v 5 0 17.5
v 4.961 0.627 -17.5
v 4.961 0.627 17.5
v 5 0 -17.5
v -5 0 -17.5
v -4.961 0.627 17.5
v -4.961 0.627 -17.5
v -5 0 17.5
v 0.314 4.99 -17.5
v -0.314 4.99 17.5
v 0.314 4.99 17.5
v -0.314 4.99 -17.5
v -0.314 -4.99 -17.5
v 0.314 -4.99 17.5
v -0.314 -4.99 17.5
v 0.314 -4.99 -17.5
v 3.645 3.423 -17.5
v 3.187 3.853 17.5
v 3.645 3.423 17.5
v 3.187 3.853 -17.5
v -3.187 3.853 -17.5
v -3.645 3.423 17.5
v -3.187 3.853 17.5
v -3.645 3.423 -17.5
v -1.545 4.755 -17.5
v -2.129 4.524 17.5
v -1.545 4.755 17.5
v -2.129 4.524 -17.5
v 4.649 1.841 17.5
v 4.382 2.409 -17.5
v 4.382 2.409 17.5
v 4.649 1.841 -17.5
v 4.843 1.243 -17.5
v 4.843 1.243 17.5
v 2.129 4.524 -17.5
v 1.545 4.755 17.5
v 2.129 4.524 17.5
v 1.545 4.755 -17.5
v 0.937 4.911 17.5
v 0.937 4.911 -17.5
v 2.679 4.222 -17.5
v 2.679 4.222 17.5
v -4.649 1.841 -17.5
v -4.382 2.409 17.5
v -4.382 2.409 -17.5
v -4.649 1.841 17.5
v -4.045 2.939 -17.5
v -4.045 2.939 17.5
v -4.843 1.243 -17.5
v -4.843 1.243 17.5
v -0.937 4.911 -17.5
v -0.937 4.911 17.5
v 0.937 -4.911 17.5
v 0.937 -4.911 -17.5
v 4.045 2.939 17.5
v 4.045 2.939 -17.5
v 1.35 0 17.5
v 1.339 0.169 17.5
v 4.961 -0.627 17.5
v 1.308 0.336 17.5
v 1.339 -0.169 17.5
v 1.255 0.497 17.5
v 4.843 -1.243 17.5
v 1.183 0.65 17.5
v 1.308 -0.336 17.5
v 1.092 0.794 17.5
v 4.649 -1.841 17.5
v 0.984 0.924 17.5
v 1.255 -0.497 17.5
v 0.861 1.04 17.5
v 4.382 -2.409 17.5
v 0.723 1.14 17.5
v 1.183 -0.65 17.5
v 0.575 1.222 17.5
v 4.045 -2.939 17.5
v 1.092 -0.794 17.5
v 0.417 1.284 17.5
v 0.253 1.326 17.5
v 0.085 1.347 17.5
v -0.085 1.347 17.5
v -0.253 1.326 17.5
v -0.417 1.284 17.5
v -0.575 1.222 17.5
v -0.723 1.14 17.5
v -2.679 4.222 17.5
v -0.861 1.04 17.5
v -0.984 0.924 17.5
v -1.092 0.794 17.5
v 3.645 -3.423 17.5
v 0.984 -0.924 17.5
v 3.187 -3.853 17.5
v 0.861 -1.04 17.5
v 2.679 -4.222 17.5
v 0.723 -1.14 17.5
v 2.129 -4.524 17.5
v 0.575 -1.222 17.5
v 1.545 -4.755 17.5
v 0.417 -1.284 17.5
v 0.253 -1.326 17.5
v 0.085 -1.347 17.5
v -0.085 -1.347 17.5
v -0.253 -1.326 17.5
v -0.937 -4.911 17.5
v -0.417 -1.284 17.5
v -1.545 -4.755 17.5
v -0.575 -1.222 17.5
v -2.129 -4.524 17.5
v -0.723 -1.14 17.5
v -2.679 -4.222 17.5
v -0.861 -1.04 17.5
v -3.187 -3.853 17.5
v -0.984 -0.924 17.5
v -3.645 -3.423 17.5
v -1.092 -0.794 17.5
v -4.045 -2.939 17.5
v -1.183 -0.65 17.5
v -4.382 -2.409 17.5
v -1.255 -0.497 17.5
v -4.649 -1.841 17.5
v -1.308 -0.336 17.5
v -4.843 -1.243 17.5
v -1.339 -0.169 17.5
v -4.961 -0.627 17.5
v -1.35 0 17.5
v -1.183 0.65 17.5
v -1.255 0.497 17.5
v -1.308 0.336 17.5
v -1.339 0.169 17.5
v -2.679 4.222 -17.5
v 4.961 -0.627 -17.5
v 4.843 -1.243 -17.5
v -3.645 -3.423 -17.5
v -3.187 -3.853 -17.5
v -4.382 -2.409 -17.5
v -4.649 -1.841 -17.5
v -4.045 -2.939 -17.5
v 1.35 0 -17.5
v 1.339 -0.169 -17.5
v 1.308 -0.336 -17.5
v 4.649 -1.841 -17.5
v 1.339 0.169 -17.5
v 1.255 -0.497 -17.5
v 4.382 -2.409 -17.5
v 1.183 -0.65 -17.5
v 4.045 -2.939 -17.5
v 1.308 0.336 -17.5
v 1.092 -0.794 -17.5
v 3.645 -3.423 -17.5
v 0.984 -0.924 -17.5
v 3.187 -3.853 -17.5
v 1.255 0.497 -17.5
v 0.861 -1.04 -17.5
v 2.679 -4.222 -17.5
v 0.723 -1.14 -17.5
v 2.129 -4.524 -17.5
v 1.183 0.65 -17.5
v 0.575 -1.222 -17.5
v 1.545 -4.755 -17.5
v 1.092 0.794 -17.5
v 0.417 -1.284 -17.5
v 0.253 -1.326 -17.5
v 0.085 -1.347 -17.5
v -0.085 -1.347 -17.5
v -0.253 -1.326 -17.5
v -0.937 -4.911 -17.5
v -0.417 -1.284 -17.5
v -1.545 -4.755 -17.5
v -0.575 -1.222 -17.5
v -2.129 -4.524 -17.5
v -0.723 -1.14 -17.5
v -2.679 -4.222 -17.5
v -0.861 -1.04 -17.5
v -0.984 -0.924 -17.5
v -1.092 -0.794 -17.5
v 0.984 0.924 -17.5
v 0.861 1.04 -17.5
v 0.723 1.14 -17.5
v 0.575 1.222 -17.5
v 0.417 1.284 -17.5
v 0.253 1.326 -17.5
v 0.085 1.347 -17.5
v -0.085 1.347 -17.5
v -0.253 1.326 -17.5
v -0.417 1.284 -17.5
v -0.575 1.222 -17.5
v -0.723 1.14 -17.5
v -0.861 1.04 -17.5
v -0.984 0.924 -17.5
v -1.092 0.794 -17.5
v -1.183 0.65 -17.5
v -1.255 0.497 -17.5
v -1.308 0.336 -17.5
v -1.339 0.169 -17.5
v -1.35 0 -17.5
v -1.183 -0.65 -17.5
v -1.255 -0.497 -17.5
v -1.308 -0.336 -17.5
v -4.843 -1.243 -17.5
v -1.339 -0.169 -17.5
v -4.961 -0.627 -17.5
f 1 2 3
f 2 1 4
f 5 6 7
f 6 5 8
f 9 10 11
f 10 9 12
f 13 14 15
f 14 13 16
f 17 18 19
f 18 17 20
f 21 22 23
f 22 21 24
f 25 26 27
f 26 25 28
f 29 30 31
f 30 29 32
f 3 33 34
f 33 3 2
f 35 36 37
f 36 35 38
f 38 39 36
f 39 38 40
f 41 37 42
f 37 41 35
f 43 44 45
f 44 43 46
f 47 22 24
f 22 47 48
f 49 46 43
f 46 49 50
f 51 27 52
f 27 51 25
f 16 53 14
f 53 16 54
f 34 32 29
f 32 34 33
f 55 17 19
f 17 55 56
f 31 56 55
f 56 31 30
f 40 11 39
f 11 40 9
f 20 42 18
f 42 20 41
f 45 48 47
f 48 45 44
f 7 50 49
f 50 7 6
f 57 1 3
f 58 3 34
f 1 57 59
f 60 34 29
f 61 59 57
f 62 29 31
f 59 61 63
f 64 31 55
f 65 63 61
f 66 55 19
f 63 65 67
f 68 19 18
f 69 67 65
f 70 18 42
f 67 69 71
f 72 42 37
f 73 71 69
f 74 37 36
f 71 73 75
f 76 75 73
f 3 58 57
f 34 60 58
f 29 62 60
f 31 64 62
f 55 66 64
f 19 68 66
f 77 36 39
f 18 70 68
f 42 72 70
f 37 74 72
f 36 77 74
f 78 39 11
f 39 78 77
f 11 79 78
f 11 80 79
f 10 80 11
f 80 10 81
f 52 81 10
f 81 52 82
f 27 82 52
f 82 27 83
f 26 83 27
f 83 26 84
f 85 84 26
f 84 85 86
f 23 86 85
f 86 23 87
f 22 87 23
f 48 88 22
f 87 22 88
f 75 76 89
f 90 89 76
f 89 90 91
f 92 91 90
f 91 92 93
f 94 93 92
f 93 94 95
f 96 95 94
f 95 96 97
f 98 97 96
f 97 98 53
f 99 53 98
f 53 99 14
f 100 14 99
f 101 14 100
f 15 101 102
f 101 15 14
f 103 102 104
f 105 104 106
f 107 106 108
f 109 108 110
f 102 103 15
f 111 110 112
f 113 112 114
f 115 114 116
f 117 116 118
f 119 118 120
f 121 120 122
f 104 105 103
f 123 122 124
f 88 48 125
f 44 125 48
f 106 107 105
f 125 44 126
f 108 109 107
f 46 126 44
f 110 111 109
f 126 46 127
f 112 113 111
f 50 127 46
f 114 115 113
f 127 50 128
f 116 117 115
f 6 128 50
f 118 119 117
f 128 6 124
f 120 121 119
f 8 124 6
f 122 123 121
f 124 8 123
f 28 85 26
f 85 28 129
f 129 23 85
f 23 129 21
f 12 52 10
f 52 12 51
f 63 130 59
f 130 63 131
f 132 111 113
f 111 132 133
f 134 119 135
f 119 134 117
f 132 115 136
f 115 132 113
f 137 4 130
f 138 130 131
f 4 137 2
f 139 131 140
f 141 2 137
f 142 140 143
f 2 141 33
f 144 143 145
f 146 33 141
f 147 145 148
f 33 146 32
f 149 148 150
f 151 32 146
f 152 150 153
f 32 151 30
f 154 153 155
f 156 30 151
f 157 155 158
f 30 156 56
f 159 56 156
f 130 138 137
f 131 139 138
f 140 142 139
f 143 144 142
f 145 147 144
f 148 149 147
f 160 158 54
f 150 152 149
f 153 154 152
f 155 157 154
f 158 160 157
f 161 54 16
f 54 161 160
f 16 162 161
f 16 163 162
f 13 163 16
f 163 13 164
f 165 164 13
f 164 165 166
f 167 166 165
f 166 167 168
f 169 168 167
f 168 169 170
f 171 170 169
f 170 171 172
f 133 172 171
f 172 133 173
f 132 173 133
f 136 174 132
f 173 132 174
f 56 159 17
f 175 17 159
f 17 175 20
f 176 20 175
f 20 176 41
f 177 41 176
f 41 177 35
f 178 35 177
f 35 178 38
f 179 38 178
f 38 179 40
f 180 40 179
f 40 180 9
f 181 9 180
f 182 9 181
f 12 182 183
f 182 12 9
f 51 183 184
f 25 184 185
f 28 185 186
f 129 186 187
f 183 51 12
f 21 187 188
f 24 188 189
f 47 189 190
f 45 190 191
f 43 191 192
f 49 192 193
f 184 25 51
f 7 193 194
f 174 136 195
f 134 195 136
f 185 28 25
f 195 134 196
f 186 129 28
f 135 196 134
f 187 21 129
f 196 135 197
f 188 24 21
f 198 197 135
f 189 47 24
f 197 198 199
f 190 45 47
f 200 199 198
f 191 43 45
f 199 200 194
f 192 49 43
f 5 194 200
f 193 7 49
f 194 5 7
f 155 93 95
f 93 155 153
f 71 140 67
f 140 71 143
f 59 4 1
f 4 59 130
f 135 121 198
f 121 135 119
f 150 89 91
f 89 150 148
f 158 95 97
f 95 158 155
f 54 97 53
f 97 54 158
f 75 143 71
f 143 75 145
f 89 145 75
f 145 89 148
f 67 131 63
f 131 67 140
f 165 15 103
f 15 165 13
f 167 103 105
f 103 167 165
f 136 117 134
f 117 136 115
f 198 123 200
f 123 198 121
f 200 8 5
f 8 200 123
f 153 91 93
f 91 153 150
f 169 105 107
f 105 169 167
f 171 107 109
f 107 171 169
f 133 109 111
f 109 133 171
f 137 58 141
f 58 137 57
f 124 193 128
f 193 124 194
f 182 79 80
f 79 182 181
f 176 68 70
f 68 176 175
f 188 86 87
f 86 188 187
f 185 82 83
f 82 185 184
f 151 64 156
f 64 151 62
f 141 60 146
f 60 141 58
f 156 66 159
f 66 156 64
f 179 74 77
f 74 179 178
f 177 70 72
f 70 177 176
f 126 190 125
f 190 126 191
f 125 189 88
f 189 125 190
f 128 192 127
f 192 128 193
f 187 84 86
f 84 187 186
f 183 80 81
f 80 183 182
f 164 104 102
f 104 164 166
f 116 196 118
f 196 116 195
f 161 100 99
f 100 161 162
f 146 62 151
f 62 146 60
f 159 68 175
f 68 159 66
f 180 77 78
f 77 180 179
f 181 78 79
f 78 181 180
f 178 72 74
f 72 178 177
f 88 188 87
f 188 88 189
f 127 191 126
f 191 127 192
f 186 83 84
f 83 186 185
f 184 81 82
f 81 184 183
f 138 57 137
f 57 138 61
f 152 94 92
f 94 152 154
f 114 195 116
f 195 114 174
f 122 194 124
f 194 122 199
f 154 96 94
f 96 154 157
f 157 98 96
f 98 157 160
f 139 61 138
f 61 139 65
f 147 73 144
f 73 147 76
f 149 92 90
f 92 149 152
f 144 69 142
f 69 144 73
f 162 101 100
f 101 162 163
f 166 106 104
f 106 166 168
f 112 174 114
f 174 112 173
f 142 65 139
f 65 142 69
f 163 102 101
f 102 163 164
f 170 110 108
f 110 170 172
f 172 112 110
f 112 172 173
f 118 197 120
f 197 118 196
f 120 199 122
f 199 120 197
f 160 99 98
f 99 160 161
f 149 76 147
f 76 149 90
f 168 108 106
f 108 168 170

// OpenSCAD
$fn = 50;


difference() {
	union() {
		translate(v = [0, 0, -17.5000000000]) {
			cylinder(h = 35, r = 5.0000000000);
		}
	}
	union() {
		translate(v = [0, 0, -100.0000000000]) {
			cylinder(h = 200, r = 1.3500000000);
		}
	}
}
